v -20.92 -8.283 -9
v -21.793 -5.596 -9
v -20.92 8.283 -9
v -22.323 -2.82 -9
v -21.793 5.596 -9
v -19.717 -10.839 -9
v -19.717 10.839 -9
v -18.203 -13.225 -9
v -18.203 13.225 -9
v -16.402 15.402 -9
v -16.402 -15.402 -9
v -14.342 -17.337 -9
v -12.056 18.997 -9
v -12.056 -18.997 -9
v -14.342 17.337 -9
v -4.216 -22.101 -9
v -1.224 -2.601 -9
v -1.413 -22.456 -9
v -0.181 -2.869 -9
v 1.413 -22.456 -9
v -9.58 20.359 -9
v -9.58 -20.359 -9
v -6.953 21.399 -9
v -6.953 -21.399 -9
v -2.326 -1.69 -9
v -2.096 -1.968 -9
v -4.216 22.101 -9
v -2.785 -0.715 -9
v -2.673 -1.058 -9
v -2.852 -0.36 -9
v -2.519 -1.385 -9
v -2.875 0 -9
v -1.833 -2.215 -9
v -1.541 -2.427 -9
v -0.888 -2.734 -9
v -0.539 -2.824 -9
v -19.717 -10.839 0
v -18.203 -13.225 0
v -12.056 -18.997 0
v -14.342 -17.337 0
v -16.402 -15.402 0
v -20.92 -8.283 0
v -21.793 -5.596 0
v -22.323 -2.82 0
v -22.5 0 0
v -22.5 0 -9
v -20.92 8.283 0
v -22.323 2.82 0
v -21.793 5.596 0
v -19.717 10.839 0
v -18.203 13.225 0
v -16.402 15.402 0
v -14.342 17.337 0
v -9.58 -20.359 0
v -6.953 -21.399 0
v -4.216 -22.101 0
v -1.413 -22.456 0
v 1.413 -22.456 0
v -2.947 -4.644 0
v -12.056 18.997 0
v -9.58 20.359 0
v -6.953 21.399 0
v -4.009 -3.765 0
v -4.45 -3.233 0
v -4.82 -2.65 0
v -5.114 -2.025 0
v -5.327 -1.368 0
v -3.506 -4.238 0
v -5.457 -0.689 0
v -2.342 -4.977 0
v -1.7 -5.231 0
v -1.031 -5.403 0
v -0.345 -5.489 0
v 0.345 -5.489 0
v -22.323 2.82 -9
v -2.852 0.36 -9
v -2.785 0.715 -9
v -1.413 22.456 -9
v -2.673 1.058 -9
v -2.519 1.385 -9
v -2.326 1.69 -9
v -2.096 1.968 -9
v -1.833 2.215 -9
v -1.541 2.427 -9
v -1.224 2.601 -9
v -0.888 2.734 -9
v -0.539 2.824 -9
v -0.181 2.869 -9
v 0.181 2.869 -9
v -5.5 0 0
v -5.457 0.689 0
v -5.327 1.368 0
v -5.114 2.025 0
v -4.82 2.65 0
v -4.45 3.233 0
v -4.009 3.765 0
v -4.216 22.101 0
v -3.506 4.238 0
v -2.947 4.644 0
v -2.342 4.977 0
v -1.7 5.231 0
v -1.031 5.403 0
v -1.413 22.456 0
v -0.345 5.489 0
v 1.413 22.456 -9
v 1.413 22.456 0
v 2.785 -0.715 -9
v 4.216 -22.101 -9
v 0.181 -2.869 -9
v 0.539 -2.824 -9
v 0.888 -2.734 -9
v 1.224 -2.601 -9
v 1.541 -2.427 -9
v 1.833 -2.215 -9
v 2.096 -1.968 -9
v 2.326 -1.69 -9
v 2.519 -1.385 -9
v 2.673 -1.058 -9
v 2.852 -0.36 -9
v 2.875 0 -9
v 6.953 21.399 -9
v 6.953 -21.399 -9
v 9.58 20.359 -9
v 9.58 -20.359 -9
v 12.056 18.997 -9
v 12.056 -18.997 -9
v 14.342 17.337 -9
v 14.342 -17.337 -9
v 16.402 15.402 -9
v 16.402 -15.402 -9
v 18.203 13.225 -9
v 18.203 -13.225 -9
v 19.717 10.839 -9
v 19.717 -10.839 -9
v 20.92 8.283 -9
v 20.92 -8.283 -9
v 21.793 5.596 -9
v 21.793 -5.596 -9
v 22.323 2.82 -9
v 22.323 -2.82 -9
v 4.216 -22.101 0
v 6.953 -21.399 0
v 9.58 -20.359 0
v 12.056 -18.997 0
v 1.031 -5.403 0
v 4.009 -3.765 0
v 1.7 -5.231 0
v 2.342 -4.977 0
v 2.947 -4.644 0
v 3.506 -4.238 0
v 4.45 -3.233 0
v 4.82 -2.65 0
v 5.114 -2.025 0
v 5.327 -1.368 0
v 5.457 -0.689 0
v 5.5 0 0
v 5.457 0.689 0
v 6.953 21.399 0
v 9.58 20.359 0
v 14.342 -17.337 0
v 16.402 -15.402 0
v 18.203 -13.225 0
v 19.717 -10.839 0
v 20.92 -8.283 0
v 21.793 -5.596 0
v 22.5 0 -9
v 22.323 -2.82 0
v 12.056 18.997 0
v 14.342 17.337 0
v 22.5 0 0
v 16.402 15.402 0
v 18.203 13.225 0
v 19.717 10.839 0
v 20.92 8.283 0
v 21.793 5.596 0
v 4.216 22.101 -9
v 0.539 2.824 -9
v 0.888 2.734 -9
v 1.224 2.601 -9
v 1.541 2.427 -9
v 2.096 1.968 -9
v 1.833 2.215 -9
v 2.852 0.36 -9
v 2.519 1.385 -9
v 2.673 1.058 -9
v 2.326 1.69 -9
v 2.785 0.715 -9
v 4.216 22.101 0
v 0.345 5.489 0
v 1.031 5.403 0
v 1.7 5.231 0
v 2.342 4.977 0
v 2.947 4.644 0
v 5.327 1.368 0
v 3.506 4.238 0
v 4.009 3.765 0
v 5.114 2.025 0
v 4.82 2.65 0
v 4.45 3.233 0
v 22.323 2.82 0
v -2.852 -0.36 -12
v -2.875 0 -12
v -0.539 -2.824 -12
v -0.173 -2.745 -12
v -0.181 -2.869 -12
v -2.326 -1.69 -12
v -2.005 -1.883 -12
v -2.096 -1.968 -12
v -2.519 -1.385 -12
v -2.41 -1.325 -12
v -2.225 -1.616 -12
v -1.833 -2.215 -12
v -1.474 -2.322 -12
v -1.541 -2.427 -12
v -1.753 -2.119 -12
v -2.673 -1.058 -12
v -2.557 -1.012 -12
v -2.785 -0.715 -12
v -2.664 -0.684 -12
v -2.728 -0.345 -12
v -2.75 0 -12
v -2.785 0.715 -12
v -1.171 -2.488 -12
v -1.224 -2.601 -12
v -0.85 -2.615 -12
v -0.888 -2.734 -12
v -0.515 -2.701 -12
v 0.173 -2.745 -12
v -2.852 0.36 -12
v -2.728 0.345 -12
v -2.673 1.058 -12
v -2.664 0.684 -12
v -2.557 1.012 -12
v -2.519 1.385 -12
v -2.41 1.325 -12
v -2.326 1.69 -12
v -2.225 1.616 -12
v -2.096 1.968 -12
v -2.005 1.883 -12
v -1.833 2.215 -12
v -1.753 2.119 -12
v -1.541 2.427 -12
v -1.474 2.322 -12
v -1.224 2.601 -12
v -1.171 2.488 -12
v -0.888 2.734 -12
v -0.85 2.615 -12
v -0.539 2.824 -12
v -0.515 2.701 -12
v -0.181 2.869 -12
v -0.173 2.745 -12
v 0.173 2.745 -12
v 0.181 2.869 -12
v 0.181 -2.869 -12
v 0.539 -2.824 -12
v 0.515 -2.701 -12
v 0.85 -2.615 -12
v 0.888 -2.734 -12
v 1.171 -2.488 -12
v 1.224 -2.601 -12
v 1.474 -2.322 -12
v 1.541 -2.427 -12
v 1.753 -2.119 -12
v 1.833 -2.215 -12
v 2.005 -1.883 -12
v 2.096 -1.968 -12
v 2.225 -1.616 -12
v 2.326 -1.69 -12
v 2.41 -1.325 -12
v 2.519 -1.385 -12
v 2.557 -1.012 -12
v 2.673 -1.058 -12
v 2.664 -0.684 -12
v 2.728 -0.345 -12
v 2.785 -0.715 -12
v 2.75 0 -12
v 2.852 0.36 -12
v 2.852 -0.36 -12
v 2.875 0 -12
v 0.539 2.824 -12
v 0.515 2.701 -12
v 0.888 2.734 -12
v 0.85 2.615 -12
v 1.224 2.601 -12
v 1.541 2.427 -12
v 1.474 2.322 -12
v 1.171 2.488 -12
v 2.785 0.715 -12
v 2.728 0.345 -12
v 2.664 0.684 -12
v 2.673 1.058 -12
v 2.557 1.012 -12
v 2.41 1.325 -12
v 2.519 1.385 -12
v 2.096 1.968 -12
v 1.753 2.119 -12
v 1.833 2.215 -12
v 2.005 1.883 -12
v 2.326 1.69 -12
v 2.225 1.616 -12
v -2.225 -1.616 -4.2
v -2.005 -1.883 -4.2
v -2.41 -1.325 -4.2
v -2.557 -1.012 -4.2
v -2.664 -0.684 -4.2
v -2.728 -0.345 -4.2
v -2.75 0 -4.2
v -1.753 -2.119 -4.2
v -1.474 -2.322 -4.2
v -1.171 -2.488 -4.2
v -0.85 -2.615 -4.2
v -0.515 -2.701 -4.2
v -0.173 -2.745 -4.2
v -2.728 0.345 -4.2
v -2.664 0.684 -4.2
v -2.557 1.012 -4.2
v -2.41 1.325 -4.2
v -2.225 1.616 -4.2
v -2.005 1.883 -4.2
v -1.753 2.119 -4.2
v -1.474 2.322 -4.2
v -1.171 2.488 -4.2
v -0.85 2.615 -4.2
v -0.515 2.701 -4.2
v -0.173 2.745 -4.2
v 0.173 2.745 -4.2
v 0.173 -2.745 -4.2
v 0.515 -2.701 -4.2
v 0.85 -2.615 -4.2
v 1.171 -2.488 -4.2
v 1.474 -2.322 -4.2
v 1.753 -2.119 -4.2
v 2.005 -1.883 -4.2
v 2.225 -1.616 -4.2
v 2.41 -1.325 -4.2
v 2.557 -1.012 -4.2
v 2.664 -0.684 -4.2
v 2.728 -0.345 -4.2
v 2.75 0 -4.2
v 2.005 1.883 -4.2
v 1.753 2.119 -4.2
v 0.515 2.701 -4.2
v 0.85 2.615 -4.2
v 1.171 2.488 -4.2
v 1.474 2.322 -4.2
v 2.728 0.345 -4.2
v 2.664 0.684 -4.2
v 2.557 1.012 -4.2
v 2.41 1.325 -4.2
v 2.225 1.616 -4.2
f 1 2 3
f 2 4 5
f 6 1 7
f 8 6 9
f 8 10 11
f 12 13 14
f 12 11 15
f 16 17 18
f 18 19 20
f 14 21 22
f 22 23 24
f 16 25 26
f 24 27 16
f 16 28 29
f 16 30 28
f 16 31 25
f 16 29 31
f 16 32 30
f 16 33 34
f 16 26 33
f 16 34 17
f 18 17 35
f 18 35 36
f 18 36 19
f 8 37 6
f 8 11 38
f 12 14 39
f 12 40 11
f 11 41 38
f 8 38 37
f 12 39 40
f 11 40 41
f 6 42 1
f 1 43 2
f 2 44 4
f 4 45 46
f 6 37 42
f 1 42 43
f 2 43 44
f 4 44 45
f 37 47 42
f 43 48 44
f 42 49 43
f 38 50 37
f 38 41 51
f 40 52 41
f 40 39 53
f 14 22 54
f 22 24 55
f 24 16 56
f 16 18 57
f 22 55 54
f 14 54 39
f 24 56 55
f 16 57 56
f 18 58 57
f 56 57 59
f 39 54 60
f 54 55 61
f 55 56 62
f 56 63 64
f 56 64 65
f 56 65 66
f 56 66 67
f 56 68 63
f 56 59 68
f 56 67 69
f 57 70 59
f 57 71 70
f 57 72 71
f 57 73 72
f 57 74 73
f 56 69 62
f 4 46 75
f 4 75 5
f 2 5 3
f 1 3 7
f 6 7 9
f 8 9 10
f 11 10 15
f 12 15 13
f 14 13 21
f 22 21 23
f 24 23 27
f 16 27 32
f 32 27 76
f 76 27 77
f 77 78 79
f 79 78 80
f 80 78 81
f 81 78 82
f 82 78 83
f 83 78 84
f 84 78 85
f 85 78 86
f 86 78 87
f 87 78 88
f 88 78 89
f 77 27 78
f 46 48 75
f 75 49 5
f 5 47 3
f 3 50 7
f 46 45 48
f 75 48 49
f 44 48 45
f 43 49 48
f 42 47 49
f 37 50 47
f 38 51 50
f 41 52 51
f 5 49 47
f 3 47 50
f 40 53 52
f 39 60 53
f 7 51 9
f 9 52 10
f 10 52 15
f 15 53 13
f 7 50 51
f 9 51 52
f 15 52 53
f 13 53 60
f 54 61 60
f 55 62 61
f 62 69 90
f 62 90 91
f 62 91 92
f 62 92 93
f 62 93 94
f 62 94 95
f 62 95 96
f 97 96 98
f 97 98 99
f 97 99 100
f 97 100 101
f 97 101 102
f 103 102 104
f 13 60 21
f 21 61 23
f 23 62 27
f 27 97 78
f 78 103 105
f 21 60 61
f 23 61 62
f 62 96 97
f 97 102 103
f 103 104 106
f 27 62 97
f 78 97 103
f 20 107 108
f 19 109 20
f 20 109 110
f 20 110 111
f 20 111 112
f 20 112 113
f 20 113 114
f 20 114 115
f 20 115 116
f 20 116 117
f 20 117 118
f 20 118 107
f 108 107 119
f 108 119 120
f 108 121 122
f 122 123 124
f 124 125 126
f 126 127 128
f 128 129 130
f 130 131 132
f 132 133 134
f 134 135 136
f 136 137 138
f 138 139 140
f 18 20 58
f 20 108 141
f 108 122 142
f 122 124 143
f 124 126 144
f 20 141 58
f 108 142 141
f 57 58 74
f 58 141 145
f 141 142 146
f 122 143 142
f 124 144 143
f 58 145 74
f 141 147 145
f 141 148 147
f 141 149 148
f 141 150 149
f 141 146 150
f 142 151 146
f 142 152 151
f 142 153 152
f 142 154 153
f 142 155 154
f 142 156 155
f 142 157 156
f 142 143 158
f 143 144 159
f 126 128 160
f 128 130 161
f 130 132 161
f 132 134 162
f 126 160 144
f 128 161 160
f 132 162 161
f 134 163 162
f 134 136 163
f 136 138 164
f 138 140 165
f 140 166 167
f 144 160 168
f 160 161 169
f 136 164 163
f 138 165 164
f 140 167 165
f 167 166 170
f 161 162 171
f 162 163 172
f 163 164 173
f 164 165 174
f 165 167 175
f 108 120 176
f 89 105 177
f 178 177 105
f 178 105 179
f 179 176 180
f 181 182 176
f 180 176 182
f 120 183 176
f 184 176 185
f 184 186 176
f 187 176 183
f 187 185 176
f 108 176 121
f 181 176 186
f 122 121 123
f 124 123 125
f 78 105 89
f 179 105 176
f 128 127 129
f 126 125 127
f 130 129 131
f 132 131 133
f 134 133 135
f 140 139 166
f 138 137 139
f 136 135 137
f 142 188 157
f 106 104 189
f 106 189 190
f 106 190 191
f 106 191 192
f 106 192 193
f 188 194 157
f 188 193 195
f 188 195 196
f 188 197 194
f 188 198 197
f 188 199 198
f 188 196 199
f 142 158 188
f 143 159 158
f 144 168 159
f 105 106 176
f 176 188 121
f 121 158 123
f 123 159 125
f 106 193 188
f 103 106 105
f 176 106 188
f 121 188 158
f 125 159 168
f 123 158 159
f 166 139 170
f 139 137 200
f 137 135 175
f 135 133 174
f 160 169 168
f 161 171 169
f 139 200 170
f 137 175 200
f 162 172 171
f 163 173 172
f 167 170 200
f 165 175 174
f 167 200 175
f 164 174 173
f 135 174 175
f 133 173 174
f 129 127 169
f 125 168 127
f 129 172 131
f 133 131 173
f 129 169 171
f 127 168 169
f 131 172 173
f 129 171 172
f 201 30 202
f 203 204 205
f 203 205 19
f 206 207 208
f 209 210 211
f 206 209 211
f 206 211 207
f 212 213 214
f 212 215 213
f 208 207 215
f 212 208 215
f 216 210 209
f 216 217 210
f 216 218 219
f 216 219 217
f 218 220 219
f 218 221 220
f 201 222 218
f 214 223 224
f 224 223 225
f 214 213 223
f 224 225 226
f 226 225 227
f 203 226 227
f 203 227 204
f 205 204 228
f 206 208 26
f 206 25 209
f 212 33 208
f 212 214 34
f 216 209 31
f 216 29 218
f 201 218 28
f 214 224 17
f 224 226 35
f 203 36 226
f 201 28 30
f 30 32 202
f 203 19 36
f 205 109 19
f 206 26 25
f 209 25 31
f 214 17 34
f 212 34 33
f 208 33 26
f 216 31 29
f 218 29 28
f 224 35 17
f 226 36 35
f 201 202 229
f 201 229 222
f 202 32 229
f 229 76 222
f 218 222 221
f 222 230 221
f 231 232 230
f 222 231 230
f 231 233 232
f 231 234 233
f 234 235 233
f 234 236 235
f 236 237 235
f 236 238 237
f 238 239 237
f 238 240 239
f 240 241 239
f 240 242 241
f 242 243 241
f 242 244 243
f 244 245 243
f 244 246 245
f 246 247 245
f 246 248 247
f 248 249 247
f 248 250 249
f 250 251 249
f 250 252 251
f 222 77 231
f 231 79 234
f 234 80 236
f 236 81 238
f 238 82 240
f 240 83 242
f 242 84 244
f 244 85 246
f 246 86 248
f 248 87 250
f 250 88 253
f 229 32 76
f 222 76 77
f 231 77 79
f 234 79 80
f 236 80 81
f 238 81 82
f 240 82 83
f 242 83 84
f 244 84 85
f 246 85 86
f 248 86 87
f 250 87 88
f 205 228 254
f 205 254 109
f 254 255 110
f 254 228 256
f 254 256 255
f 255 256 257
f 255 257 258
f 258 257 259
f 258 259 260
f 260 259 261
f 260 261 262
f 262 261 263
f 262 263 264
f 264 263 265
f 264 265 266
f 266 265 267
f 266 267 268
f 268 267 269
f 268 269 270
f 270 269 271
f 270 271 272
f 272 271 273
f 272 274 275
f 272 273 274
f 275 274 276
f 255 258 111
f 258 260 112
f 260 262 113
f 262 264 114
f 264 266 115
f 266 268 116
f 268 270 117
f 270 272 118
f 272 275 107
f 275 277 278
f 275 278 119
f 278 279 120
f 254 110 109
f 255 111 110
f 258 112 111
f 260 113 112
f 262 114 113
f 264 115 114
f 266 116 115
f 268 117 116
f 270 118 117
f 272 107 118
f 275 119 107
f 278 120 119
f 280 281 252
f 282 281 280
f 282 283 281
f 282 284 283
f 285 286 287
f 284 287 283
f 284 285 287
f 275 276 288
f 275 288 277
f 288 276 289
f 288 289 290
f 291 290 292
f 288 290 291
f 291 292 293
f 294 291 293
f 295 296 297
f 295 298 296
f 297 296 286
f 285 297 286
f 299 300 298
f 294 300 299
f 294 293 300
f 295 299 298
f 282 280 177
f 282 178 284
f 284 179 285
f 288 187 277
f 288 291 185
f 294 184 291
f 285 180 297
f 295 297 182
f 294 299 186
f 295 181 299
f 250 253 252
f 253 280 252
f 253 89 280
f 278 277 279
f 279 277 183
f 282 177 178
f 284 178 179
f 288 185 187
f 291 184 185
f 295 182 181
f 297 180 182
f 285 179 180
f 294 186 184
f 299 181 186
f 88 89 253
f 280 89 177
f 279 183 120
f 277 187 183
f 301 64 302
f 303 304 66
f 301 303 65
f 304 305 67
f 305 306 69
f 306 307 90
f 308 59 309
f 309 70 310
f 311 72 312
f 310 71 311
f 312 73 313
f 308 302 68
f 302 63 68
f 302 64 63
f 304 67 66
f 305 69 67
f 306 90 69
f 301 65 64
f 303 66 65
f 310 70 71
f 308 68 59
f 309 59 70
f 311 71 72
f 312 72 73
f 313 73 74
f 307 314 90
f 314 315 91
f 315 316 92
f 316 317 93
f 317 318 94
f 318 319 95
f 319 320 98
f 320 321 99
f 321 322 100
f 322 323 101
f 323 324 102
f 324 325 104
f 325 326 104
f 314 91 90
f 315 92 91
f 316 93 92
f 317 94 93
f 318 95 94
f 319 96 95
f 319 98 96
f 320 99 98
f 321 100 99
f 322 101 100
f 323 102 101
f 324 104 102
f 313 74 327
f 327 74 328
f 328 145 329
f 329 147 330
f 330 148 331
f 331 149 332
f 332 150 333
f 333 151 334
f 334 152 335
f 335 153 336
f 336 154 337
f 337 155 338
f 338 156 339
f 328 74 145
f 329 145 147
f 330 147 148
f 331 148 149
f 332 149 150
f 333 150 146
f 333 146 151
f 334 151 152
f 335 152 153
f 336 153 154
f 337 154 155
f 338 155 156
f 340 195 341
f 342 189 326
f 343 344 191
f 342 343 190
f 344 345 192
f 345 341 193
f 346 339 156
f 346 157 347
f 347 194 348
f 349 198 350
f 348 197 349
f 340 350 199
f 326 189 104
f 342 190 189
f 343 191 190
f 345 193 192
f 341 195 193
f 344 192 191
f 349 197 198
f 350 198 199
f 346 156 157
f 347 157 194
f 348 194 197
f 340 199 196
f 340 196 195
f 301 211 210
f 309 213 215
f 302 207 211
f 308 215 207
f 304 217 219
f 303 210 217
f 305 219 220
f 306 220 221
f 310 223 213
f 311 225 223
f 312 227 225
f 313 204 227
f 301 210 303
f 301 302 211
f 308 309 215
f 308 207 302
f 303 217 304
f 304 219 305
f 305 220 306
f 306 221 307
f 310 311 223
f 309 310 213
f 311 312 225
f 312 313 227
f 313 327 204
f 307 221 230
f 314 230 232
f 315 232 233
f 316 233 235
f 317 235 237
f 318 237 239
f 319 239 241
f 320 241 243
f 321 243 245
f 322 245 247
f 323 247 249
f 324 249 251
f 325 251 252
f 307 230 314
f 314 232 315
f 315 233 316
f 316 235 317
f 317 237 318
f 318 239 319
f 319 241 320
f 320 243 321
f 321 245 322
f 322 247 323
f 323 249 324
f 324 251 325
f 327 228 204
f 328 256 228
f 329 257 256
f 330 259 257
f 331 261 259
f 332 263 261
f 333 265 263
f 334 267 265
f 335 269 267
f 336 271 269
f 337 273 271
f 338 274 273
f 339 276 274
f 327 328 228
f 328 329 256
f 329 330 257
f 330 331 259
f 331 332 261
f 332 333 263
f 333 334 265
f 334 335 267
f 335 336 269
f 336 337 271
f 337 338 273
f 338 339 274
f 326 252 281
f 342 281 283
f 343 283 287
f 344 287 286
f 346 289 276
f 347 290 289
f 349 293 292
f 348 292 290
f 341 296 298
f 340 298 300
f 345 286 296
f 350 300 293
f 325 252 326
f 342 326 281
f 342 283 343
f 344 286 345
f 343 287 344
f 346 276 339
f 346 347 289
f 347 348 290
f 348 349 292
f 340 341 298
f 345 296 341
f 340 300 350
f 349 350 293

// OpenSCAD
$fn = 50;

difference() {
	union() {
		translate(v = [0, 0, -9.0]) {
			cylinder(h = 9, r = 22.5);
		}
		#translate(v = [0, 0, -12.0]) {
			cylinder(h = 12, r = 2.875);
		}
	}
	union() {
		translate(v = [0, 0, 0]) {
			rotate(a = [0, 0, 0]) {
				difference() {
					union() {
						translate(v = [0, 0, -12.0]) {
							cylinder(h = 12, r = 2.25);
						}
						translate(v = [0, 0, -4.2]) {
							cylinder(h = 4.2, r1 = 2.75, r2 = 5.5);
						}
						translate(v = [0, 0, -12.0]) {
							cylinder(h = 12, r = 2.75);
						}
						translate(v = [0, 0, -12.0]) {
							cylinder(h = 12, r = 2.25);
						}
					}
					union();
				}
			}
		}
	}
}
